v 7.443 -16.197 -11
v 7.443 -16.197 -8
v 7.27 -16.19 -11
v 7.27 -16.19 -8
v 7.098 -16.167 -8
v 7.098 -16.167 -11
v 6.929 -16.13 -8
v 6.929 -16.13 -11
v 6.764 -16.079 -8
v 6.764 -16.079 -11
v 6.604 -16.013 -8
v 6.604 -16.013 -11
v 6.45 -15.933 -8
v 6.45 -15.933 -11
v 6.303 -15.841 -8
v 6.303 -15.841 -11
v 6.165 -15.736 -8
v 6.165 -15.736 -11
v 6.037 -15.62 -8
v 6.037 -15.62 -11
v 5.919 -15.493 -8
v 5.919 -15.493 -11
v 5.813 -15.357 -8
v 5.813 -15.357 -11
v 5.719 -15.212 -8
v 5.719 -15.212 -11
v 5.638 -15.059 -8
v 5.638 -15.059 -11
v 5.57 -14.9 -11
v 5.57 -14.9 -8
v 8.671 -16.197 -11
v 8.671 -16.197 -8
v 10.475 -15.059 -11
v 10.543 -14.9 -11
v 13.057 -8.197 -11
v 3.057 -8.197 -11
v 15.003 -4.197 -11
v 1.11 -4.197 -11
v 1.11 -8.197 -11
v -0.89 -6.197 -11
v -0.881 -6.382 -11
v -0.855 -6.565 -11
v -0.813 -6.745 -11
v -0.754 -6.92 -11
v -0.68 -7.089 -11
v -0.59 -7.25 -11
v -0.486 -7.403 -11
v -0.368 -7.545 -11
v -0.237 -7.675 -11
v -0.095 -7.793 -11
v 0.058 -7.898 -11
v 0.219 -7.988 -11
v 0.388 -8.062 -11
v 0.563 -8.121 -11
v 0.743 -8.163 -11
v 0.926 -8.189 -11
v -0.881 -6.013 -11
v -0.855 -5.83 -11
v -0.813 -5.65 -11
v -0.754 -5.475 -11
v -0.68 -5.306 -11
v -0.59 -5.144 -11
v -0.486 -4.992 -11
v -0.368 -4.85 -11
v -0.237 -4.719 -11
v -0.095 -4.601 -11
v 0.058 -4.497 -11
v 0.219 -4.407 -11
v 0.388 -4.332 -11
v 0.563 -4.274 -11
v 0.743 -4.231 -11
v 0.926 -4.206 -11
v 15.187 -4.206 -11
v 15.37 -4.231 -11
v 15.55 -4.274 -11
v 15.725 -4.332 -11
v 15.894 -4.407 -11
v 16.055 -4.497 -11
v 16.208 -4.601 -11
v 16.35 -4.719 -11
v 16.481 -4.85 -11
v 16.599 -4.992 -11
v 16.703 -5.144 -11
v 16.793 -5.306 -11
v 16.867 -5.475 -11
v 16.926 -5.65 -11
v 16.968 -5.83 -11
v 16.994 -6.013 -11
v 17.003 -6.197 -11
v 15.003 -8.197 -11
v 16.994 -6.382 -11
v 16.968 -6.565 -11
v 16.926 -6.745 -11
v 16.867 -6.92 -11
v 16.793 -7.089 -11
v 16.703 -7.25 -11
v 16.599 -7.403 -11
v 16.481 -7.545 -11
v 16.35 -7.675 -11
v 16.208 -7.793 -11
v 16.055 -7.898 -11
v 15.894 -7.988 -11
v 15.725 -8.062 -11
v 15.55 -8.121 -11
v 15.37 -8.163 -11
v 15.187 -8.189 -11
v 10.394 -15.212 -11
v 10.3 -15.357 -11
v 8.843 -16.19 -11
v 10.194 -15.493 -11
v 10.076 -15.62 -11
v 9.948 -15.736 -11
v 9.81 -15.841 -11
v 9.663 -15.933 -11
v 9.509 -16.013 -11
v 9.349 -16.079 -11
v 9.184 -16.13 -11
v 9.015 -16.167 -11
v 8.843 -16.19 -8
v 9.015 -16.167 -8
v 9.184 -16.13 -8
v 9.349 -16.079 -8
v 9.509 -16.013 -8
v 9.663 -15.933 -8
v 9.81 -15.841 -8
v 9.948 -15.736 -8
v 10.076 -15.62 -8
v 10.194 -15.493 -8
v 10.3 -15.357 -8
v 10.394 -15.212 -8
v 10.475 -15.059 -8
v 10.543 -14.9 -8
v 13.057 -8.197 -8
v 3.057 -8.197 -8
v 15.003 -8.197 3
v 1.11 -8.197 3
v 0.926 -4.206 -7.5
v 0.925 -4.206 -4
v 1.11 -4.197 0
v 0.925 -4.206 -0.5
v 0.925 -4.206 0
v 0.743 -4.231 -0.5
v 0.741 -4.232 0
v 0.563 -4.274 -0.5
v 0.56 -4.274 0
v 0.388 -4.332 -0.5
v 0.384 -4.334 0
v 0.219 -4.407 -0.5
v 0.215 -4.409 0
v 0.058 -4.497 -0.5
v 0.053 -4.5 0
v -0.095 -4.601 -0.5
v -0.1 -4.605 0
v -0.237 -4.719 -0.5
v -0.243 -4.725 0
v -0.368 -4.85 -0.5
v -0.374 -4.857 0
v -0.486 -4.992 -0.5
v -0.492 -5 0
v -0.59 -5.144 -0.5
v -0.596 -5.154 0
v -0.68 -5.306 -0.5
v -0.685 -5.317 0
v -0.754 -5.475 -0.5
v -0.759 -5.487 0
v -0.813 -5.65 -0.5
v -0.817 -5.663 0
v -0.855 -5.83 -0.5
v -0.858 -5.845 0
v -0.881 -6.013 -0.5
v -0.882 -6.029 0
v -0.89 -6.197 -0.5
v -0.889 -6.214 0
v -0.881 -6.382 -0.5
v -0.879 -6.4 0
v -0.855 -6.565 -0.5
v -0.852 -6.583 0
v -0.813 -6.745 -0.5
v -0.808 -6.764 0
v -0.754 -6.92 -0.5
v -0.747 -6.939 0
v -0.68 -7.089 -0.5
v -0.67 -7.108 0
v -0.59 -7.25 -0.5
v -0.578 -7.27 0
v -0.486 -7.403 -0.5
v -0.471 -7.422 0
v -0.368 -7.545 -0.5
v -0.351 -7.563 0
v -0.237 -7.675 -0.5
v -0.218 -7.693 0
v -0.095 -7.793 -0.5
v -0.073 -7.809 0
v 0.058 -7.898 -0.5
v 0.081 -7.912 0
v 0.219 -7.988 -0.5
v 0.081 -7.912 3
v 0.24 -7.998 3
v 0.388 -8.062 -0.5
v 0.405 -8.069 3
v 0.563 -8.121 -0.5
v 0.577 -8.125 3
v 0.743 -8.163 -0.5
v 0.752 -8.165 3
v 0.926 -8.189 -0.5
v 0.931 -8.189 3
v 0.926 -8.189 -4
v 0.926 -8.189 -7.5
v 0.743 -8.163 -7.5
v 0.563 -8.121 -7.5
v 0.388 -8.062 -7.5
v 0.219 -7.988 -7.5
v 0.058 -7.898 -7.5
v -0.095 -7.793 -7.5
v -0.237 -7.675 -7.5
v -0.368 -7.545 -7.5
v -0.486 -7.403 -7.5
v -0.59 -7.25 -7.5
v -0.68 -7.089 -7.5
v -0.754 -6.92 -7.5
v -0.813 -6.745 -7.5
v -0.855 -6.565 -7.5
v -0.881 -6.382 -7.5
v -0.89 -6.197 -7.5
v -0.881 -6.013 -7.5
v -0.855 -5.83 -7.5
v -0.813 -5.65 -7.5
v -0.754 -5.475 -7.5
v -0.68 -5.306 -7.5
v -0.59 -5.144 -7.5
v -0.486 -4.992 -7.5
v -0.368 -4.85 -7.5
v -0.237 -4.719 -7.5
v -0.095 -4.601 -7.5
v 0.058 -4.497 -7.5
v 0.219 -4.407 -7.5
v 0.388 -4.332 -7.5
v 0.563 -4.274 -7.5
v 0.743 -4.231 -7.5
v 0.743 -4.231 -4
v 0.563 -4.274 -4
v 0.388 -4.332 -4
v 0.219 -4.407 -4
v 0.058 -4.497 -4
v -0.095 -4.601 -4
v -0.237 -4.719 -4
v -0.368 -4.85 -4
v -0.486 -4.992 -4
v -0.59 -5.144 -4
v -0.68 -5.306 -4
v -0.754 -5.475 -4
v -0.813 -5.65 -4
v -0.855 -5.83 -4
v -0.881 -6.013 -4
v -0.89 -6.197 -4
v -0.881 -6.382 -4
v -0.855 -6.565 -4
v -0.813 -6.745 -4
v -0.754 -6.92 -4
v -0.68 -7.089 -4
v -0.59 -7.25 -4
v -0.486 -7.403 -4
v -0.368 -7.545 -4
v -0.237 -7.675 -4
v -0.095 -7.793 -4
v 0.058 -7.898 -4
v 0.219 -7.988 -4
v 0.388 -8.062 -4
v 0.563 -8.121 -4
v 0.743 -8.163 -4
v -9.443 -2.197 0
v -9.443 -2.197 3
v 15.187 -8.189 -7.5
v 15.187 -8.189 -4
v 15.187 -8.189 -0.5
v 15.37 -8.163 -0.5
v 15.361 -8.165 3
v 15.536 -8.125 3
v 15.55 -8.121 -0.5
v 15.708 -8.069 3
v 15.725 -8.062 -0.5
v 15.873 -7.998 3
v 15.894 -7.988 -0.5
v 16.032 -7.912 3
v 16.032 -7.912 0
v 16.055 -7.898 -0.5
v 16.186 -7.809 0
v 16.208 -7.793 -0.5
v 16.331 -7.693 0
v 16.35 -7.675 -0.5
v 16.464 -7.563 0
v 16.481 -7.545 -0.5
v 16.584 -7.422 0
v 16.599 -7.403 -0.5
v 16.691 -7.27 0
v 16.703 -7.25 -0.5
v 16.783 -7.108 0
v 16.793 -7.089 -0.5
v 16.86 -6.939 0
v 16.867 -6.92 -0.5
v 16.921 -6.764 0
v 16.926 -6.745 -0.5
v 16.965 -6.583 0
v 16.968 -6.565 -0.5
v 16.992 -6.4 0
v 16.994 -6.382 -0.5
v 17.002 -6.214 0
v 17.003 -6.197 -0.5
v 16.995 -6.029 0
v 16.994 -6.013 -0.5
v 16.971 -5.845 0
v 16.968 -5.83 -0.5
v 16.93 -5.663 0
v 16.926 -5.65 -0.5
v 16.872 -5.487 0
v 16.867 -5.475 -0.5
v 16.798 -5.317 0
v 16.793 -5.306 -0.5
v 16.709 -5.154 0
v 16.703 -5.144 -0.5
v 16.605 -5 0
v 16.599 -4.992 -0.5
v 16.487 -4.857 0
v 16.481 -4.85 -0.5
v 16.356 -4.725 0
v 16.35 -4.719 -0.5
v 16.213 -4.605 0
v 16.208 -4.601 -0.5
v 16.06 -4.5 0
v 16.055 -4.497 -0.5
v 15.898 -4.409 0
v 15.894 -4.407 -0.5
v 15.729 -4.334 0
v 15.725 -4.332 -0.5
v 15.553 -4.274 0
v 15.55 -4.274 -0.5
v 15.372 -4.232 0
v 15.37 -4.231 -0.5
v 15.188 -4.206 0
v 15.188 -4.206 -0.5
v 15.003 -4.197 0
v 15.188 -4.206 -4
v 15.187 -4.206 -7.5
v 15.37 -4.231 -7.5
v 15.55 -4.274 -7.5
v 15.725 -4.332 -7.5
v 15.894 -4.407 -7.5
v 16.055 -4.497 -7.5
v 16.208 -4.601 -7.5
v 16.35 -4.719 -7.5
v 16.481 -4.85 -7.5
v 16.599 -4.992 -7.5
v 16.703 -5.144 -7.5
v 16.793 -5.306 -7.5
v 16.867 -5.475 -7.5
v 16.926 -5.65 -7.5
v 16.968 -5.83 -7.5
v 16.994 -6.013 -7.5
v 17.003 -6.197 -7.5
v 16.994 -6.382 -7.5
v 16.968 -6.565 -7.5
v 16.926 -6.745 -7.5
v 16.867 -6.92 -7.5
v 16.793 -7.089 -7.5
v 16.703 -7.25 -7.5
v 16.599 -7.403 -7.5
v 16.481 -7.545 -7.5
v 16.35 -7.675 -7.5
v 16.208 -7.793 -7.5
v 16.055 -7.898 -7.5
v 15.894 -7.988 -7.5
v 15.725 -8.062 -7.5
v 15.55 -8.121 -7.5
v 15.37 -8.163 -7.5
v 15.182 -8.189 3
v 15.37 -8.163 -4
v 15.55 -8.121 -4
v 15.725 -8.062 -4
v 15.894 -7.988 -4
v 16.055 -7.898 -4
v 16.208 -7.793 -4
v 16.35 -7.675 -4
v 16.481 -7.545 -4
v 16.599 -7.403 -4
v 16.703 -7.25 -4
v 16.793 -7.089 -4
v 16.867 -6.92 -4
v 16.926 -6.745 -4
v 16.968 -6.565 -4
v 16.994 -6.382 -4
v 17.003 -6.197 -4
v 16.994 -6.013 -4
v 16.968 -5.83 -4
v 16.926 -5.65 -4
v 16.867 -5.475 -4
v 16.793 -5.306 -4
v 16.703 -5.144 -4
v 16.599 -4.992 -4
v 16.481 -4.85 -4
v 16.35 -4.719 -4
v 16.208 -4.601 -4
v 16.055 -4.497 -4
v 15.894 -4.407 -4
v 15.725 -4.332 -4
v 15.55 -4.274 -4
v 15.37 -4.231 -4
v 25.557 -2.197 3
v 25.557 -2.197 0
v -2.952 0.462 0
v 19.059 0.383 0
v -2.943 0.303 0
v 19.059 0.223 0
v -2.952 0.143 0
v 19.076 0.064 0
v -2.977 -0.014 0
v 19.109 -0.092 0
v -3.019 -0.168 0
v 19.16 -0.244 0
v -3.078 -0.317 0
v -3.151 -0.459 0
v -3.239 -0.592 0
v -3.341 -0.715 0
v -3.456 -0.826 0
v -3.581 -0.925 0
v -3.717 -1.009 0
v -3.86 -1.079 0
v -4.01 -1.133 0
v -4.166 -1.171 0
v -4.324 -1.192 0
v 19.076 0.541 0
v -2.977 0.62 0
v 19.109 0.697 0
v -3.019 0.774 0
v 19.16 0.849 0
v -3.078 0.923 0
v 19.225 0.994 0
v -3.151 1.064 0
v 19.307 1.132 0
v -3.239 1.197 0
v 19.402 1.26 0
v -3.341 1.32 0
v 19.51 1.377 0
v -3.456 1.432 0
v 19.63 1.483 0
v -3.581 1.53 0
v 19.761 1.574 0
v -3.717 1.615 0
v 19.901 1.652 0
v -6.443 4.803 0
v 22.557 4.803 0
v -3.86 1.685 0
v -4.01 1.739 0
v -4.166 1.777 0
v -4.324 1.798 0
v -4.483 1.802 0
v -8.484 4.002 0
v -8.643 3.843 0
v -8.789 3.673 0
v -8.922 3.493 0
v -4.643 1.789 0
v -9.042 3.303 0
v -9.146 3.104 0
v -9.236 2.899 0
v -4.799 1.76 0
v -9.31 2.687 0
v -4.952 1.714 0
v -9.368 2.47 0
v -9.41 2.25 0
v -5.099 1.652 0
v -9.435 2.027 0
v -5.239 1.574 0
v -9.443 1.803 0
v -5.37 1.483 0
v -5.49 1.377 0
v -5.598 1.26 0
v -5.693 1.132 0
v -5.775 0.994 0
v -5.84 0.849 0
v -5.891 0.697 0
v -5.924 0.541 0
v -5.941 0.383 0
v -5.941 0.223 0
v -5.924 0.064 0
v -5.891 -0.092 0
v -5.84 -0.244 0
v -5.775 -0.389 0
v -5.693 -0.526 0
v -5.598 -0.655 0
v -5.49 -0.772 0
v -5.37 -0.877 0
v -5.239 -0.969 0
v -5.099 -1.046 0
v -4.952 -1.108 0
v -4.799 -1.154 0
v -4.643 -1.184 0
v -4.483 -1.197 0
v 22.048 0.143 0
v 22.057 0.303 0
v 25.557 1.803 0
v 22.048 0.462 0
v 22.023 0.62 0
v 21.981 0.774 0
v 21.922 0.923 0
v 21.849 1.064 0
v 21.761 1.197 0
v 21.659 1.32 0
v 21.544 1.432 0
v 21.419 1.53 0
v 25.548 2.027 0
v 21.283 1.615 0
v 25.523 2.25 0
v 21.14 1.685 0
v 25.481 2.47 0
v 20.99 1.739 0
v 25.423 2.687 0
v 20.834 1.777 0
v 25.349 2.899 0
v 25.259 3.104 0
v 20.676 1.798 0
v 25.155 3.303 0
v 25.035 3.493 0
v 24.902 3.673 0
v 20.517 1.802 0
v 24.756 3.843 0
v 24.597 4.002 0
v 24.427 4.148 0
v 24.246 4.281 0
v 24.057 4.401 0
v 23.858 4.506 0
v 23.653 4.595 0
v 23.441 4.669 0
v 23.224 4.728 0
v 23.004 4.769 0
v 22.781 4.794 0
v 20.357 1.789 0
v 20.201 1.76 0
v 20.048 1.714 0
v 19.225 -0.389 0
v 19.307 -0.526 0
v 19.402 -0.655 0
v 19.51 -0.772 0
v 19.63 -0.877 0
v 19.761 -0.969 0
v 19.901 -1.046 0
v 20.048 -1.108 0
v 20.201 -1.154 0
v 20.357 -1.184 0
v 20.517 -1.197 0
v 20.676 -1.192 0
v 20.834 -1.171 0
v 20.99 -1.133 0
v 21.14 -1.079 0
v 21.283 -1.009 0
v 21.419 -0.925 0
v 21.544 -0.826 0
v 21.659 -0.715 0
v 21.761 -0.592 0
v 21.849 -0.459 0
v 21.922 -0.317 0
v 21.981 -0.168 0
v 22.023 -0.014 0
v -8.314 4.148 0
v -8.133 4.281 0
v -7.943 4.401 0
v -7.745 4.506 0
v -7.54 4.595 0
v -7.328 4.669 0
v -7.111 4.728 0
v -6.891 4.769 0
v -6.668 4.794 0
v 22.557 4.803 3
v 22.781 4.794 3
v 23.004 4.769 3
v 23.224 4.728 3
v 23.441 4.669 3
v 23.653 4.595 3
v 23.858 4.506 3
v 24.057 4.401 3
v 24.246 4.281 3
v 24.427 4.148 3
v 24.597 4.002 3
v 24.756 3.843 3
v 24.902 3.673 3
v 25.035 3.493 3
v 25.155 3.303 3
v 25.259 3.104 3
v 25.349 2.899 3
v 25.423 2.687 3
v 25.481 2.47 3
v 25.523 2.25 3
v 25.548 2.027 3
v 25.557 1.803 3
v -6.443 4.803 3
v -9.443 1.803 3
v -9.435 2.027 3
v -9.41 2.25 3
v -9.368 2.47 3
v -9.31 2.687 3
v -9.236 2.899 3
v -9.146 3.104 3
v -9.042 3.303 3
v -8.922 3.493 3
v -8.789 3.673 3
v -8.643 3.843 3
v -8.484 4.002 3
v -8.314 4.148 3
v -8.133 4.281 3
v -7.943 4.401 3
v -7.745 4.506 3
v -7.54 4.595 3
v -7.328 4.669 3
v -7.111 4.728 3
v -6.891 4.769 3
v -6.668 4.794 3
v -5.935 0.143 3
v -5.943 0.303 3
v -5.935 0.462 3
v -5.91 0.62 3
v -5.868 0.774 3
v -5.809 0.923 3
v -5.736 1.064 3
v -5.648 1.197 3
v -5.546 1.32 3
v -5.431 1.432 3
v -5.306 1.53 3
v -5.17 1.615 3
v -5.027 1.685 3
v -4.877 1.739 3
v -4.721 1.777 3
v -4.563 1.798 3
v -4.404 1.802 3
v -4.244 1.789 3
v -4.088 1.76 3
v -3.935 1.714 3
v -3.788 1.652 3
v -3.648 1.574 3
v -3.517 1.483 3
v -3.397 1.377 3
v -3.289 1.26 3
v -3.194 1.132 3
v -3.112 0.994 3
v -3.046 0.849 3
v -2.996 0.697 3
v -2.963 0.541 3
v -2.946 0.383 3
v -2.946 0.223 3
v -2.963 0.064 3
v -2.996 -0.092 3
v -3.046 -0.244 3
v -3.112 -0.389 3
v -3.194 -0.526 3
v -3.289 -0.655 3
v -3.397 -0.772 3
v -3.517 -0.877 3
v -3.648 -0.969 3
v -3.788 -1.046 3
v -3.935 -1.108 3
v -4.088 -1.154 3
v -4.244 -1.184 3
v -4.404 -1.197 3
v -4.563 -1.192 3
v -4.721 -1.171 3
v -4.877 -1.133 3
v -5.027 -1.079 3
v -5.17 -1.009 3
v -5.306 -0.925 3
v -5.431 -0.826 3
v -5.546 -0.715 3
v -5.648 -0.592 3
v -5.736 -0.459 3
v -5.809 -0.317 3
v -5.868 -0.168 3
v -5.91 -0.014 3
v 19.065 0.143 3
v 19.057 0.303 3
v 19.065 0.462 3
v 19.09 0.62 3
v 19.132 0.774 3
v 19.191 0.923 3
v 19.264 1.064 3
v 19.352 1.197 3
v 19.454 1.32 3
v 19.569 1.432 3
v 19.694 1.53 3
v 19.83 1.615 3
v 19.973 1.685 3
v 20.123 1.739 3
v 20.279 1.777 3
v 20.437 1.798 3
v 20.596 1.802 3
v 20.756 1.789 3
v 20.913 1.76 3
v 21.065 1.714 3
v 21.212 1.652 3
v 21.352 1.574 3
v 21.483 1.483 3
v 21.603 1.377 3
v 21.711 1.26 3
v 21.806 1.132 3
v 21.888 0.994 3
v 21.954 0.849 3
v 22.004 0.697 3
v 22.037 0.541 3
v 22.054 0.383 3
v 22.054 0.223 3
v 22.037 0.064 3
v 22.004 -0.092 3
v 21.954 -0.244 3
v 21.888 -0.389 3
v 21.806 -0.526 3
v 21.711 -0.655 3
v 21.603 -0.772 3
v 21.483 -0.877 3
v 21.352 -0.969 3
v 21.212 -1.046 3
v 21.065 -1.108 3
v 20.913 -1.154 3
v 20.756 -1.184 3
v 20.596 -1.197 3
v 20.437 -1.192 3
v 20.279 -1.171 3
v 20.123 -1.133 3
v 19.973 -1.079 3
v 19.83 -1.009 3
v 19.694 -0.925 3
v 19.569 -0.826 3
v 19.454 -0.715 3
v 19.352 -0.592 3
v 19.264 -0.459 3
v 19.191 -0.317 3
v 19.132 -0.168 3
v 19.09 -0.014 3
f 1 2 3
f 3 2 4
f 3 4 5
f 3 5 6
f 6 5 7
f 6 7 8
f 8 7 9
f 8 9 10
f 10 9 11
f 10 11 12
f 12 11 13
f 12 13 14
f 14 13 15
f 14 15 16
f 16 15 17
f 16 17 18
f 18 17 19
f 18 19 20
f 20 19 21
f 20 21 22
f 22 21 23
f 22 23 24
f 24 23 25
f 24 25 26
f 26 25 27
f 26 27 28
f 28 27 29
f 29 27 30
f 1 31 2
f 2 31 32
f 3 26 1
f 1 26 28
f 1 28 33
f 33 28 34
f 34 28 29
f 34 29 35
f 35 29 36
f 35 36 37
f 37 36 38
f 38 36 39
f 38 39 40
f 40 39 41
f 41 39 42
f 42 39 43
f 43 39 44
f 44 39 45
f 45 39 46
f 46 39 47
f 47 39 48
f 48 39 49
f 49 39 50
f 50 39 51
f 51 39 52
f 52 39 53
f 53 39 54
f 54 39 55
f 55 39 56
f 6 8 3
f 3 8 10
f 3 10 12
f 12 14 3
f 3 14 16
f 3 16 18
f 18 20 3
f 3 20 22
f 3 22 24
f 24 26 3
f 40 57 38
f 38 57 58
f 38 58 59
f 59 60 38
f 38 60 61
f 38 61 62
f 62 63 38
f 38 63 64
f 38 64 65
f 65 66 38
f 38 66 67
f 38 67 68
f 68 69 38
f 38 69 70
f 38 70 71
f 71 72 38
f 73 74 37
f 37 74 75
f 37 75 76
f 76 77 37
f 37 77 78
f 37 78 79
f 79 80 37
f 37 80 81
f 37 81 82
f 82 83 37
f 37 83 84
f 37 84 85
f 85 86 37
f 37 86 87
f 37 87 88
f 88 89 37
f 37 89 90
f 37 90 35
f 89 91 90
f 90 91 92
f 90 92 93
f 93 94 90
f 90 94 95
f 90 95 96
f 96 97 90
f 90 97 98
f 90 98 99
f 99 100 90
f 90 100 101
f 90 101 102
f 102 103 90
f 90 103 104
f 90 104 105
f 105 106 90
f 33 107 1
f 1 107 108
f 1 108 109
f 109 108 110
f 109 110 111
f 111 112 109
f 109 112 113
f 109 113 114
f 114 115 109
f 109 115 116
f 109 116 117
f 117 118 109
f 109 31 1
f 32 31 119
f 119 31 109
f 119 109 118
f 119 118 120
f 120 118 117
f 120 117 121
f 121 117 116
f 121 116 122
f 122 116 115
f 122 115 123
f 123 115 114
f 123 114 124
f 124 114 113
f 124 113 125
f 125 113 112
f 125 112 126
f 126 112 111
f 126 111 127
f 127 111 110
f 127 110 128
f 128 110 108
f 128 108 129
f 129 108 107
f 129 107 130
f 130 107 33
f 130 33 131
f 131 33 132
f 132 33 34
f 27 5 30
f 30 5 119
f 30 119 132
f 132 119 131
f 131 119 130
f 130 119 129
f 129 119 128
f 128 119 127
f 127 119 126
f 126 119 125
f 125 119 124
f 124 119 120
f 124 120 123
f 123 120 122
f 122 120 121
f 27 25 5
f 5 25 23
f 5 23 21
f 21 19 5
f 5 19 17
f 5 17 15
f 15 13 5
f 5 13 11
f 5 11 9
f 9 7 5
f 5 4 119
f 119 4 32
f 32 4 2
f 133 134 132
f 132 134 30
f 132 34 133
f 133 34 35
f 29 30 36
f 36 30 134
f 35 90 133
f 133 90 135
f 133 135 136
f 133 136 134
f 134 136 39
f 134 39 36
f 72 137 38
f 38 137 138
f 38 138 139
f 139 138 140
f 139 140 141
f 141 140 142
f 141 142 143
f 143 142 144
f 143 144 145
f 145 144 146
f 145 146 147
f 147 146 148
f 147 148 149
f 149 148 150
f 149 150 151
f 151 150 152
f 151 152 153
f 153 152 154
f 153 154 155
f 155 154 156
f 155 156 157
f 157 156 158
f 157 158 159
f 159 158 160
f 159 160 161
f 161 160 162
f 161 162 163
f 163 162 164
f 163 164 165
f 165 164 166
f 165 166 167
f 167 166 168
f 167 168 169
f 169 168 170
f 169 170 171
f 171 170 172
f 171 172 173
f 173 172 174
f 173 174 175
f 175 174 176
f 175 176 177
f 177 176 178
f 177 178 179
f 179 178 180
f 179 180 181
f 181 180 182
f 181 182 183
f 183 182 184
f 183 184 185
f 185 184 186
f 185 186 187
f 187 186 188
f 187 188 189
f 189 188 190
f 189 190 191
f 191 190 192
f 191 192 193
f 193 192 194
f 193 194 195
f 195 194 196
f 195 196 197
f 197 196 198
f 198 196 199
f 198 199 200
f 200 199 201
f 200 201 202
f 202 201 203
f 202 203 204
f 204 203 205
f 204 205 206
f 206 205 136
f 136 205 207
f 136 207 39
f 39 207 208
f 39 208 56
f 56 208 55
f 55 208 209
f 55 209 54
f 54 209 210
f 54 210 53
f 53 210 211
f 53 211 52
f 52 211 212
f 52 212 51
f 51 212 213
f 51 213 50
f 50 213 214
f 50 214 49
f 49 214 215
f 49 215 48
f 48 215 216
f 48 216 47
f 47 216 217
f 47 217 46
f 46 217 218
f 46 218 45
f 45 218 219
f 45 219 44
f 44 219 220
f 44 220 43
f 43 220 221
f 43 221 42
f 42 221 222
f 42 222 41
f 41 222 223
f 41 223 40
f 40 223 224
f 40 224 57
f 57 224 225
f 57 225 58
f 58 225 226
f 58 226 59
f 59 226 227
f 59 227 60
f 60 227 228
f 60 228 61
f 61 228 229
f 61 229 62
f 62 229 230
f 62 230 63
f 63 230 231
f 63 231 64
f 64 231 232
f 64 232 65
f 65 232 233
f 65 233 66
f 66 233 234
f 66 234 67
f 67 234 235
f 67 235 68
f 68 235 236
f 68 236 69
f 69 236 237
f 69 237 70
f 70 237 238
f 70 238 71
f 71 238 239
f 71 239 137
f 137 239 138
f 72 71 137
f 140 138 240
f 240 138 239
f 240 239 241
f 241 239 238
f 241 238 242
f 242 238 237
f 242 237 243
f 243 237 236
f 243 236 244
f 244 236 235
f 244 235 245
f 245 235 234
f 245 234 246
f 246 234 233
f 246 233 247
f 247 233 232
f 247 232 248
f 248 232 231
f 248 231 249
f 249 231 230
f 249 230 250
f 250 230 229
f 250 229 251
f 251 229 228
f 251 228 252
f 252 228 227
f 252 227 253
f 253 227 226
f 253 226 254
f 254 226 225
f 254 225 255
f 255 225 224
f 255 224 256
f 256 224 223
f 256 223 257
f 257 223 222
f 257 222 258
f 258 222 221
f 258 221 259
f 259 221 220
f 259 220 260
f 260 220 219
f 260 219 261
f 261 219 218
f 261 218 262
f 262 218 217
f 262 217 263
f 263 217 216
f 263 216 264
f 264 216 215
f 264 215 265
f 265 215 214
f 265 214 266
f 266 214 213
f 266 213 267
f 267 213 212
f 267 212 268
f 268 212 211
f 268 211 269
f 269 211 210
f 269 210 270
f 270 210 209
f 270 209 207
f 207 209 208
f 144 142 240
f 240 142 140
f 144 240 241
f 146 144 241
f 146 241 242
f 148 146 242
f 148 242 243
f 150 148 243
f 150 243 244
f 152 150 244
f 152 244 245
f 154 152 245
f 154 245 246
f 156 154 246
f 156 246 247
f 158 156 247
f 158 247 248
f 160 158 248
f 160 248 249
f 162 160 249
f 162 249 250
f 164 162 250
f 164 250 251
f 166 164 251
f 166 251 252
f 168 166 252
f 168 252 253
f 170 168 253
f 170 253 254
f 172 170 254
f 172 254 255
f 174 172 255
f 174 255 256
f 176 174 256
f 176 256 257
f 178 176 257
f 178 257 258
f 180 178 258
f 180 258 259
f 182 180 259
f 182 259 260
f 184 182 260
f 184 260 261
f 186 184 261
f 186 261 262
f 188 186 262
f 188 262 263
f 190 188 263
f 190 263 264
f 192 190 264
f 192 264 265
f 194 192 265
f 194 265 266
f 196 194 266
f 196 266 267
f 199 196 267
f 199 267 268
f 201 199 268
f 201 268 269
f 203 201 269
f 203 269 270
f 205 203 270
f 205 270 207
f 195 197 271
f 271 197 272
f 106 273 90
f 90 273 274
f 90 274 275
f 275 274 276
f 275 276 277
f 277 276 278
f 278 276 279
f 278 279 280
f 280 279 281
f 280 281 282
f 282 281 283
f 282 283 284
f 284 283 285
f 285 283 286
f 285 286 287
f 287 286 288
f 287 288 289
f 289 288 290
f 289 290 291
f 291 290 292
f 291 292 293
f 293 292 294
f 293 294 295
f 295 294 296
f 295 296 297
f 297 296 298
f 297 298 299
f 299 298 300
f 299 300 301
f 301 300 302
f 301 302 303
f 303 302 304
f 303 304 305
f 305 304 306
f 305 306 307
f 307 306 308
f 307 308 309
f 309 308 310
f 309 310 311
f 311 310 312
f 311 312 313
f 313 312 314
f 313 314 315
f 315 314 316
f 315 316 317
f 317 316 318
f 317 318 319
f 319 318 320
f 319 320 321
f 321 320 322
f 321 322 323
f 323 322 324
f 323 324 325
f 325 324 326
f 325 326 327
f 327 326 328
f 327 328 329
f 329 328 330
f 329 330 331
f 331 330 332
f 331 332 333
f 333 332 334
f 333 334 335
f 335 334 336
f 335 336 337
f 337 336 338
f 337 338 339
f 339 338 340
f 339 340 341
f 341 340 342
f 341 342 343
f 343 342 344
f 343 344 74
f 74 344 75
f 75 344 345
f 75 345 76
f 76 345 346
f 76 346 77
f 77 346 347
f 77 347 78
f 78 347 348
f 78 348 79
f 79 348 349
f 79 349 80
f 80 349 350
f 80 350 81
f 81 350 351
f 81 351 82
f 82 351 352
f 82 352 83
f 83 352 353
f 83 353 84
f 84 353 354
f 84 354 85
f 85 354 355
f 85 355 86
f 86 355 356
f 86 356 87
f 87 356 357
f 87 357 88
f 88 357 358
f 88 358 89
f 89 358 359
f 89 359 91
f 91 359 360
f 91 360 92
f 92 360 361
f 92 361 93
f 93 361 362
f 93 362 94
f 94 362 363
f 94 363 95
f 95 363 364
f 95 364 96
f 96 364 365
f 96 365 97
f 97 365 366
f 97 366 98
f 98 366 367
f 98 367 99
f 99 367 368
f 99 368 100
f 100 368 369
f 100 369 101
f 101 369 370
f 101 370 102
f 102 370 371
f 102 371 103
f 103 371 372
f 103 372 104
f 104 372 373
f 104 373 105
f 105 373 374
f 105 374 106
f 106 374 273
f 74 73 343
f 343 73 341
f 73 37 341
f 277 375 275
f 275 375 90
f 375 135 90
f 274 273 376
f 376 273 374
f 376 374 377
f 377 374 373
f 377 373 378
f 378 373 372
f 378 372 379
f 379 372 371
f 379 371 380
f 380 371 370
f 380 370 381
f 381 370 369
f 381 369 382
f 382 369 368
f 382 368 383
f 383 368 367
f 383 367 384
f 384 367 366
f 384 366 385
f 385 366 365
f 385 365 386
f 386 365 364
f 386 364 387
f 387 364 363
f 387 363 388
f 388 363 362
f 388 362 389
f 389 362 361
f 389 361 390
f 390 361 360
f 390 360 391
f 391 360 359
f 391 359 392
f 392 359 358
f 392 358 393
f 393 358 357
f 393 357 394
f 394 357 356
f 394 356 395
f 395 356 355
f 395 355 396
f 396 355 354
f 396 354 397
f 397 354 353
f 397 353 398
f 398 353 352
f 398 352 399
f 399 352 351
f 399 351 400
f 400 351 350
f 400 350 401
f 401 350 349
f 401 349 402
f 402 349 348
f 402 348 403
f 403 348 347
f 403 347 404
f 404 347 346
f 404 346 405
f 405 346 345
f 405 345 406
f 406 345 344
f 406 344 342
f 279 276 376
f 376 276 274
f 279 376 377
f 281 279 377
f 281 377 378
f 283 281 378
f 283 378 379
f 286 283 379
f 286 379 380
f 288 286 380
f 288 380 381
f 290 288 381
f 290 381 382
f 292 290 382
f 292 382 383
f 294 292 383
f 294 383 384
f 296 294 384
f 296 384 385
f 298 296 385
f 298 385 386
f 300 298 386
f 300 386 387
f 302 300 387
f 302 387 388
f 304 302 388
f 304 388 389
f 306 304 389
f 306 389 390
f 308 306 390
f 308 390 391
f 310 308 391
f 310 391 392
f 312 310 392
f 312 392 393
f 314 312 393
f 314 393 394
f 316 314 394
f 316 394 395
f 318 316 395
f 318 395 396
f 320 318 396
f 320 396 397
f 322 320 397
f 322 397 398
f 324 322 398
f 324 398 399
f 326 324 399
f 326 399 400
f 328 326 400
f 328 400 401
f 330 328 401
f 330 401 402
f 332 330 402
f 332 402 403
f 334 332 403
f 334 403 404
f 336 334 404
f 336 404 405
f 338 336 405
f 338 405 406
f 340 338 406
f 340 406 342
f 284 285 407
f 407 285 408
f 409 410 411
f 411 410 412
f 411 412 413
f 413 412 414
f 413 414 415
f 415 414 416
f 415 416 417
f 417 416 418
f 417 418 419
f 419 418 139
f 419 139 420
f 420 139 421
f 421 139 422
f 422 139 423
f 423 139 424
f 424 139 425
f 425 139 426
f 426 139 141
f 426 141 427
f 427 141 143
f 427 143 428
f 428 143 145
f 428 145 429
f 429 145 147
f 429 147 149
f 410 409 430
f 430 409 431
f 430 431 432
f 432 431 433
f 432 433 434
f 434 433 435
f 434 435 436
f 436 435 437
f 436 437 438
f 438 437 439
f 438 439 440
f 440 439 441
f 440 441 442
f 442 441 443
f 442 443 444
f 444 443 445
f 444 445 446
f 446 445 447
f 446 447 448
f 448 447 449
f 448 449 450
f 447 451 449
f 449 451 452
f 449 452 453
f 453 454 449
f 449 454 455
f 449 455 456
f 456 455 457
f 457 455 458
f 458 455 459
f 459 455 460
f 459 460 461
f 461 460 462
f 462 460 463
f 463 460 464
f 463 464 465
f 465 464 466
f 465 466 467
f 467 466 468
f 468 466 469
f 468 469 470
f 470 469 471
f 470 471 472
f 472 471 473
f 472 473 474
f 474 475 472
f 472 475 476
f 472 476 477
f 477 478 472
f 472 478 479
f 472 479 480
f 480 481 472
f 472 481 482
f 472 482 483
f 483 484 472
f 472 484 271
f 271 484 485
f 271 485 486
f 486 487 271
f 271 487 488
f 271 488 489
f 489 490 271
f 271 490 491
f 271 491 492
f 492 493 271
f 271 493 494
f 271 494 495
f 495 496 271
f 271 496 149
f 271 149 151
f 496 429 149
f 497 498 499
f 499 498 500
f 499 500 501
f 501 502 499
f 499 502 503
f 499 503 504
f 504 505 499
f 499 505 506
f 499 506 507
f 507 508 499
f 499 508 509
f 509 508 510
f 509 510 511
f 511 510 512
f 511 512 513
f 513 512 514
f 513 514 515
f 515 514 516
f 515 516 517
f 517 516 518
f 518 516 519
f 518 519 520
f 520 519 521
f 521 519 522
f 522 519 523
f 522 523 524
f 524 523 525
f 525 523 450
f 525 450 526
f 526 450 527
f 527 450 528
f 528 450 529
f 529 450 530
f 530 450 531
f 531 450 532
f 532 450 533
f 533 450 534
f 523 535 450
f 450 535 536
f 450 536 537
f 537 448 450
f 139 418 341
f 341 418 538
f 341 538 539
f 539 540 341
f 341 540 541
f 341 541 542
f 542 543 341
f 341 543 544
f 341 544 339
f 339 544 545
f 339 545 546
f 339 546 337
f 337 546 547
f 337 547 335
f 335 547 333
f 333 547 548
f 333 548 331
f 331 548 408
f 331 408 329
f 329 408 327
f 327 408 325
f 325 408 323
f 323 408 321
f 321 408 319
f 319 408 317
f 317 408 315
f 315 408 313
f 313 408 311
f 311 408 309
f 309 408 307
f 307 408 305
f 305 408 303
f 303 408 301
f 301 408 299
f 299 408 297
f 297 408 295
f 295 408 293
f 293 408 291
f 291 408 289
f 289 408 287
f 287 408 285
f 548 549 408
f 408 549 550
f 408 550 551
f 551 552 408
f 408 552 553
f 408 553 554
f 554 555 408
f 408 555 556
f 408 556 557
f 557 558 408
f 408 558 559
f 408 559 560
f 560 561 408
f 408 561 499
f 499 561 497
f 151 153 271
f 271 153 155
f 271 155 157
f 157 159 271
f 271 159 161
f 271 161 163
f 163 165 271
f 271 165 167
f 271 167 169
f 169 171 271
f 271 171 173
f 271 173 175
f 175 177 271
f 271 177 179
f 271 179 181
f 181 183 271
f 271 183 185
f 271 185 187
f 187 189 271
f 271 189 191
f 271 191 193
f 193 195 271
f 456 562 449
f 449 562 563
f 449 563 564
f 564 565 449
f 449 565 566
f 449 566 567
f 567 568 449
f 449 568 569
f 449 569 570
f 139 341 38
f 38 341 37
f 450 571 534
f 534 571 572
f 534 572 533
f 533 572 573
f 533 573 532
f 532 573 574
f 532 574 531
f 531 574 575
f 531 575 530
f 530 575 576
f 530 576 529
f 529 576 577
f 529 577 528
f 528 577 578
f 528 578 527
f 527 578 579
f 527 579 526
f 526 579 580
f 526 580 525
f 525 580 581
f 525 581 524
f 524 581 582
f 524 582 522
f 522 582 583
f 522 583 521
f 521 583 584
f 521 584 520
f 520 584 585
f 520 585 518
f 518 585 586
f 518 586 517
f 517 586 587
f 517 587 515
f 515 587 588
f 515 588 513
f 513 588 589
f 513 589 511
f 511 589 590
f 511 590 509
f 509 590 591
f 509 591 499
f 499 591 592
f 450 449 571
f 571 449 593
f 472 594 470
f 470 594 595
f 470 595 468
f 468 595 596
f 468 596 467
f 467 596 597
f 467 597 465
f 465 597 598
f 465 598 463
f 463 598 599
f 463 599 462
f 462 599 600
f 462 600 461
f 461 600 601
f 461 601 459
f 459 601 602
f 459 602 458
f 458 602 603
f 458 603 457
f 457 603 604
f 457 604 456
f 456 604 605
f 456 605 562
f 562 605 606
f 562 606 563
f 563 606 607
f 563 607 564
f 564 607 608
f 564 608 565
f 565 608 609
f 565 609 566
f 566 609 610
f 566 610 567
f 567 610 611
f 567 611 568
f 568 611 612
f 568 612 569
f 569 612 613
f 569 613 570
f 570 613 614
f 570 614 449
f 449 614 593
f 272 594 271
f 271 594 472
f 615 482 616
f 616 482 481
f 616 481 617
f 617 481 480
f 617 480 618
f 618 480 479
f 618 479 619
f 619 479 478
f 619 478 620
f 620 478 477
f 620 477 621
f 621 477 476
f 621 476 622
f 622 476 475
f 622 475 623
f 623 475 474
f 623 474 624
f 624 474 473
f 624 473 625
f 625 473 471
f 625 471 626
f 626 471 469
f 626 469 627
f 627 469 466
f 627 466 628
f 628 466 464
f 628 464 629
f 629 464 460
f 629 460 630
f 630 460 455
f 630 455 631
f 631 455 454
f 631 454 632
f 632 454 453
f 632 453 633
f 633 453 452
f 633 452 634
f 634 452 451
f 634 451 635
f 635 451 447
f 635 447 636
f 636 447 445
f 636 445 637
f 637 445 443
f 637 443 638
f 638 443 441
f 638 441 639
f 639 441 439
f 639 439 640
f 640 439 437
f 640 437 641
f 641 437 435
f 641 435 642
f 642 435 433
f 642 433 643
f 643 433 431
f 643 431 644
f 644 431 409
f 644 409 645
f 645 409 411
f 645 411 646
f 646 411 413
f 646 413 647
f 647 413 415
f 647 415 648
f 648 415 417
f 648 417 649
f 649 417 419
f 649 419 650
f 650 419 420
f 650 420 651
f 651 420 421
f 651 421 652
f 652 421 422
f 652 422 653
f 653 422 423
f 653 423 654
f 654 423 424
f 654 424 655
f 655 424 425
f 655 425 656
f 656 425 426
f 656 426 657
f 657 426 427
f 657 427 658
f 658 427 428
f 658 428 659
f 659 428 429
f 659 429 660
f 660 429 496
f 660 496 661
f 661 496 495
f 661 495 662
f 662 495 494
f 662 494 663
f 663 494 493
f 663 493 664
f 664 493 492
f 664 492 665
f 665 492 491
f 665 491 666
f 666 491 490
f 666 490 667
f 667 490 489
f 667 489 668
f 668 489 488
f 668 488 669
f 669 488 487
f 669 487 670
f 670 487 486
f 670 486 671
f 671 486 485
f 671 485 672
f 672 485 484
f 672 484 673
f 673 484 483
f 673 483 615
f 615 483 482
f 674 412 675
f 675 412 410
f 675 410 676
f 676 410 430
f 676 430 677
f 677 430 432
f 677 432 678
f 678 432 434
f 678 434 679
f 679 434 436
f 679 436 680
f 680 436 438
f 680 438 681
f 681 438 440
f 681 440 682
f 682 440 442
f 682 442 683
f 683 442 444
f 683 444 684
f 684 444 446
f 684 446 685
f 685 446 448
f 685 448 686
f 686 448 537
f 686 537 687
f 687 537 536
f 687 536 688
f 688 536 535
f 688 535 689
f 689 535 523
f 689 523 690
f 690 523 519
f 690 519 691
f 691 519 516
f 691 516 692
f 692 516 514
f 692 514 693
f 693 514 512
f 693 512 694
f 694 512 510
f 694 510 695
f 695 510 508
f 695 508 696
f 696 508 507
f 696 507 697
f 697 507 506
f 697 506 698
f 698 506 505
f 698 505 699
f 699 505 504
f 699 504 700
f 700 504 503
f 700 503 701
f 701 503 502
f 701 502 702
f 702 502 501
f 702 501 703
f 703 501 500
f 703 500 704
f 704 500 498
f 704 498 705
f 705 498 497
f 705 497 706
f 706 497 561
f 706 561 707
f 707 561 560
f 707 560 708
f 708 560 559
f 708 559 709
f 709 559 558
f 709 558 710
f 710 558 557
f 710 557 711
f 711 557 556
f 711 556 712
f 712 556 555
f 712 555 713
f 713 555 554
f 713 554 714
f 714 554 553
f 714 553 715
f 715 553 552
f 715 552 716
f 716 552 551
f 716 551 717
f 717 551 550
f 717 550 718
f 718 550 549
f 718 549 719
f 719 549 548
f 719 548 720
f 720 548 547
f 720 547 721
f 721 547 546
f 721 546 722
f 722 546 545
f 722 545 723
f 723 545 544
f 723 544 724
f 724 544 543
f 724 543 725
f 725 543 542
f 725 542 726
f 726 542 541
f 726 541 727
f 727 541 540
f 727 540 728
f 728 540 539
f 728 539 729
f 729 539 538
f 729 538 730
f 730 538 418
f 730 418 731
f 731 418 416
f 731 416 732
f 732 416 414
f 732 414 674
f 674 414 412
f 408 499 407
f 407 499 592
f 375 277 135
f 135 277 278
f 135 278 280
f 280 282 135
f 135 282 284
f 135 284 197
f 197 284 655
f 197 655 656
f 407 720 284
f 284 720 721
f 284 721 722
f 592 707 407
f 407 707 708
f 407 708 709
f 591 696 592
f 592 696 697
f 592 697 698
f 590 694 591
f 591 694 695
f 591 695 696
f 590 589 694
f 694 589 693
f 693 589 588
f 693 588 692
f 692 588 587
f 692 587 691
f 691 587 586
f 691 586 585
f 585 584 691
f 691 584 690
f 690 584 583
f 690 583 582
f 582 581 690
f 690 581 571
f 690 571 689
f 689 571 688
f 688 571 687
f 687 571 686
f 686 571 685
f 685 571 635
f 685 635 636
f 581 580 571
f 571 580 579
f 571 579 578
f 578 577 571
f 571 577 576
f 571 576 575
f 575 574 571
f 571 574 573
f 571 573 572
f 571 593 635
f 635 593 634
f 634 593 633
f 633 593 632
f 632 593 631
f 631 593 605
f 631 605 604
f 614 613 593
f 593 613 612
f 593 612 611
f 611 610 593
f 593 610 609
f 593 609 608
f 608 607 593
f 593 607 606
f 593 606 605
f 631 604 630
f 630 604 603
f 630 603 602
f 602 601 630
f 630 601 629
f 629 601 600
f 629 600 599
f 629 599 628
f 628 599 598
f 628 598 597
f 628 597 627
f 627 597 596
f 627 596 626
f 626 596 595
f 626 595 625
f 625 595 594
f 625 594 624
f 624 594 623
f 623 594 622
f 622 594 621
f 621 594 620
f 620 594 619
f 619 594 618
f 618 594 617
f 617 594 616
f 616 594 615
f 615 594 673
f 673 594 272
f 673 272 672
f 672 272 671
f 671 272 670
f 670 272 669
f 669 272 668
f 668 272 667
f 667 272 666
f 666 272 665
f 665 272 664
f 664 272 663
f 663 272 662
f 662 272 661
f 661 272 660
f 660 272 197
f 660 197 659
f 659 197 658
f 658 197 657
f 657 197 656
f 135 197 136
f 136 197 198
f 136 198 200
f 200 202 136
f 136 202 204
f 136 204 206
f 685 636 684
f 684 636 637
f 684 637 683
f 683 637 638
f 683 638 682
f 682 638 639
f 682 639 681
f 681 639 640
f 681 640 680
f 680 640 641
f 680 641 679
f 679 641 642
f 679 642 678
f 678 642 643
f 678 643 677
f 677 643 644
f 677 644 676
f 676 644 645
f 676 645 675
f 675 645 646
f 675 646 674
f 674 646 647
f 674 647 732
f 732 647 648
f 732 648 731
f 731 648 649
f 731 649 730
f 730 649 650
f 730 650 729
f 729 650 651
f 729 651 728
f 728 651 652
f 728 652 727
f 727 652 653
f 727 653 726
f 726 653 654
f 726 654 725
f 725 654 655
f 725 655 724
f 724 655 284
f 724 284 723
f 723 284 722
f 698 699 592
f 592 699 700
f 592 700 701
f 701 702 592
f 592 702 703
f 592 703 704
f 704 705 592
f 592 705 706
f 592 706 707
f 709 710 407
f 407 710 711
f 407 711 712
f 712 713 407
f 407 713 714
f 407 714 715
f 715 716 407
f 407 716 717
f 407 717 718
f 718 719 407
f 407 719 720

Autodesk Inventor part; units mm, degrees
ref_plane "YZ Plane" through (0, 0, 0) normal (1, 0, 0) x (0, 1, 0)
ref_plane "XZ Plane" through (0, 0, 0) normal (0, 1, 0) x (-1, 0, 0)
ref_plane "XY Plane" through (0, 0, 0) normal (0, 0, 1) x (1, 0, 0)
sketch "Sketch1" plane through (0, 0, 0) normal (0, 0, 1) x (1, 0, 0)
  line L0 (-9.4435, 4.8027) -> (25.5565, 4.8027)
  line L1 (25.5565, 4.8027) -> (25.5565, -4.1973)
  line L2 (25.5565, -4.1973) -> (-9.4435, -4.1973)
  line L3 (-9.4435, -4.1973) -> (-9.4435, 4.8027)
  line L4 (-9.4435, -4.1973) -> (-9.4435, -8.1973)
  line L5 (-9.4435, -8.1973) -> (25.5565, -8.1973)
  line L6 (25.5565, -8.1973) -> (25.5565, -4.1973)
  point P0 (0, 0)
  point P1 (-4.4435, 0.3027)
  point P2 (20.5565, 0.3027)
  dimension "d0" = 35
  dimension "d1" = 9
  dimension "d2" = 25
  dimension "d3" = 5
  dimension "d4" = 4.5
  dimension "d5" = 4
extrude "Extrusion1" add sketch "Sketch1" along normal blind 3
extrude "Extrusion2" add sketch "Sketch1" against normal blind 11 contours L2 L6 L5 L4
hole "Hole1" at (-4.4435, 0.3027, 0) at (20.5565, 0.3027, 0) direction (0, 0, 1) diameter 3 end through all
fillet "Fillet1" radius 3 2 edges at (-9.4435, 4.8027, 1.5) (25.5565, 4.8027, 1.5)
chamfer "Chamfer1" distance 6 distance2 10 1 edges at (-9.4435, -8.1973, -4) measured on face at (-9.4435, -6.8639, -2.6667)
chamfer "Chamfer2" distance 6 distance2 10 1 edges at (25.5565, -8.1973, -4) measured on face at (25.5565, -6.8639, -2.6667)
fillet "Fillet2" radius 2 4 edges at (22.2232, -4.1973, -5.5) (-6.1102, -4.1973, -5.5) (0.5565, -8.1973, -4) (15.5565, -8.1973, -4)
sketch "Sketch2" plane through (0, 0, -11) normal (0, 0, -1) x (-1, 0, 0)
  arc A0 (-15.0025, -4.1973) -> (-15.0025, -8.1973) centre (-15.0025, -6.1973) ccw projected
  line L0 (-15.0025, -8.1973) -> (-1.1105, -8.1973) projected
  arc A1 (-1.1105, -8.1973) -> (-1.1105, -4.1973) centre (-1.1105, -6.1973) ccw projected
  line L1 (-1.1105, -4.1973) -> (-15.0025, -4.1973) projected
  line L2 (-15.0025, -8.1973) -> (-1.1105, -8.1973) projected
  line L3 (-3.0565, -8.1973) -> (-3.0565, -16.1973)
  line L4 (-3.0565, -16.1973) -> (-13.0565, -16.1973)
  line L5 (-13.0565, -16.1973) -> (-13.0565, -8.1973)
  point P0 (0, 0)
  dimension "d25" = 8
  dimension "d26" = 10
  dimension "d27" = 13.8921
  dimension "d28" = 1.946
extrude "Extrusion3" add sketch "Sketch2" against normal blind 3 contours L0 L3 L4 L5
chamfer "Chamfer3" distance 8 distance2 3 1 edges at (3.0565, -16.1973, -9.5) measured on face at (3.0565, -13.5306, -10)
chamfer "Chamfer4" distance 8 distance2 3 1 edges at (13.0565, -16.1973, -9.5) measured on face at (13.0565, -10.8639, -10)
fillet "Fillet3" radius 2 2 edges at (10.0566, -16.1973, -9.5) (6.0564, -16.1973, -9.5)
equation "\"d1\" = 2 * d4"
equation "\"d28\" = -0.5 * d26 + 0.5 * d27"
properties part number "3DP_PLA_Y_axis_endstop_pushrod" material "ABS Plastic"
